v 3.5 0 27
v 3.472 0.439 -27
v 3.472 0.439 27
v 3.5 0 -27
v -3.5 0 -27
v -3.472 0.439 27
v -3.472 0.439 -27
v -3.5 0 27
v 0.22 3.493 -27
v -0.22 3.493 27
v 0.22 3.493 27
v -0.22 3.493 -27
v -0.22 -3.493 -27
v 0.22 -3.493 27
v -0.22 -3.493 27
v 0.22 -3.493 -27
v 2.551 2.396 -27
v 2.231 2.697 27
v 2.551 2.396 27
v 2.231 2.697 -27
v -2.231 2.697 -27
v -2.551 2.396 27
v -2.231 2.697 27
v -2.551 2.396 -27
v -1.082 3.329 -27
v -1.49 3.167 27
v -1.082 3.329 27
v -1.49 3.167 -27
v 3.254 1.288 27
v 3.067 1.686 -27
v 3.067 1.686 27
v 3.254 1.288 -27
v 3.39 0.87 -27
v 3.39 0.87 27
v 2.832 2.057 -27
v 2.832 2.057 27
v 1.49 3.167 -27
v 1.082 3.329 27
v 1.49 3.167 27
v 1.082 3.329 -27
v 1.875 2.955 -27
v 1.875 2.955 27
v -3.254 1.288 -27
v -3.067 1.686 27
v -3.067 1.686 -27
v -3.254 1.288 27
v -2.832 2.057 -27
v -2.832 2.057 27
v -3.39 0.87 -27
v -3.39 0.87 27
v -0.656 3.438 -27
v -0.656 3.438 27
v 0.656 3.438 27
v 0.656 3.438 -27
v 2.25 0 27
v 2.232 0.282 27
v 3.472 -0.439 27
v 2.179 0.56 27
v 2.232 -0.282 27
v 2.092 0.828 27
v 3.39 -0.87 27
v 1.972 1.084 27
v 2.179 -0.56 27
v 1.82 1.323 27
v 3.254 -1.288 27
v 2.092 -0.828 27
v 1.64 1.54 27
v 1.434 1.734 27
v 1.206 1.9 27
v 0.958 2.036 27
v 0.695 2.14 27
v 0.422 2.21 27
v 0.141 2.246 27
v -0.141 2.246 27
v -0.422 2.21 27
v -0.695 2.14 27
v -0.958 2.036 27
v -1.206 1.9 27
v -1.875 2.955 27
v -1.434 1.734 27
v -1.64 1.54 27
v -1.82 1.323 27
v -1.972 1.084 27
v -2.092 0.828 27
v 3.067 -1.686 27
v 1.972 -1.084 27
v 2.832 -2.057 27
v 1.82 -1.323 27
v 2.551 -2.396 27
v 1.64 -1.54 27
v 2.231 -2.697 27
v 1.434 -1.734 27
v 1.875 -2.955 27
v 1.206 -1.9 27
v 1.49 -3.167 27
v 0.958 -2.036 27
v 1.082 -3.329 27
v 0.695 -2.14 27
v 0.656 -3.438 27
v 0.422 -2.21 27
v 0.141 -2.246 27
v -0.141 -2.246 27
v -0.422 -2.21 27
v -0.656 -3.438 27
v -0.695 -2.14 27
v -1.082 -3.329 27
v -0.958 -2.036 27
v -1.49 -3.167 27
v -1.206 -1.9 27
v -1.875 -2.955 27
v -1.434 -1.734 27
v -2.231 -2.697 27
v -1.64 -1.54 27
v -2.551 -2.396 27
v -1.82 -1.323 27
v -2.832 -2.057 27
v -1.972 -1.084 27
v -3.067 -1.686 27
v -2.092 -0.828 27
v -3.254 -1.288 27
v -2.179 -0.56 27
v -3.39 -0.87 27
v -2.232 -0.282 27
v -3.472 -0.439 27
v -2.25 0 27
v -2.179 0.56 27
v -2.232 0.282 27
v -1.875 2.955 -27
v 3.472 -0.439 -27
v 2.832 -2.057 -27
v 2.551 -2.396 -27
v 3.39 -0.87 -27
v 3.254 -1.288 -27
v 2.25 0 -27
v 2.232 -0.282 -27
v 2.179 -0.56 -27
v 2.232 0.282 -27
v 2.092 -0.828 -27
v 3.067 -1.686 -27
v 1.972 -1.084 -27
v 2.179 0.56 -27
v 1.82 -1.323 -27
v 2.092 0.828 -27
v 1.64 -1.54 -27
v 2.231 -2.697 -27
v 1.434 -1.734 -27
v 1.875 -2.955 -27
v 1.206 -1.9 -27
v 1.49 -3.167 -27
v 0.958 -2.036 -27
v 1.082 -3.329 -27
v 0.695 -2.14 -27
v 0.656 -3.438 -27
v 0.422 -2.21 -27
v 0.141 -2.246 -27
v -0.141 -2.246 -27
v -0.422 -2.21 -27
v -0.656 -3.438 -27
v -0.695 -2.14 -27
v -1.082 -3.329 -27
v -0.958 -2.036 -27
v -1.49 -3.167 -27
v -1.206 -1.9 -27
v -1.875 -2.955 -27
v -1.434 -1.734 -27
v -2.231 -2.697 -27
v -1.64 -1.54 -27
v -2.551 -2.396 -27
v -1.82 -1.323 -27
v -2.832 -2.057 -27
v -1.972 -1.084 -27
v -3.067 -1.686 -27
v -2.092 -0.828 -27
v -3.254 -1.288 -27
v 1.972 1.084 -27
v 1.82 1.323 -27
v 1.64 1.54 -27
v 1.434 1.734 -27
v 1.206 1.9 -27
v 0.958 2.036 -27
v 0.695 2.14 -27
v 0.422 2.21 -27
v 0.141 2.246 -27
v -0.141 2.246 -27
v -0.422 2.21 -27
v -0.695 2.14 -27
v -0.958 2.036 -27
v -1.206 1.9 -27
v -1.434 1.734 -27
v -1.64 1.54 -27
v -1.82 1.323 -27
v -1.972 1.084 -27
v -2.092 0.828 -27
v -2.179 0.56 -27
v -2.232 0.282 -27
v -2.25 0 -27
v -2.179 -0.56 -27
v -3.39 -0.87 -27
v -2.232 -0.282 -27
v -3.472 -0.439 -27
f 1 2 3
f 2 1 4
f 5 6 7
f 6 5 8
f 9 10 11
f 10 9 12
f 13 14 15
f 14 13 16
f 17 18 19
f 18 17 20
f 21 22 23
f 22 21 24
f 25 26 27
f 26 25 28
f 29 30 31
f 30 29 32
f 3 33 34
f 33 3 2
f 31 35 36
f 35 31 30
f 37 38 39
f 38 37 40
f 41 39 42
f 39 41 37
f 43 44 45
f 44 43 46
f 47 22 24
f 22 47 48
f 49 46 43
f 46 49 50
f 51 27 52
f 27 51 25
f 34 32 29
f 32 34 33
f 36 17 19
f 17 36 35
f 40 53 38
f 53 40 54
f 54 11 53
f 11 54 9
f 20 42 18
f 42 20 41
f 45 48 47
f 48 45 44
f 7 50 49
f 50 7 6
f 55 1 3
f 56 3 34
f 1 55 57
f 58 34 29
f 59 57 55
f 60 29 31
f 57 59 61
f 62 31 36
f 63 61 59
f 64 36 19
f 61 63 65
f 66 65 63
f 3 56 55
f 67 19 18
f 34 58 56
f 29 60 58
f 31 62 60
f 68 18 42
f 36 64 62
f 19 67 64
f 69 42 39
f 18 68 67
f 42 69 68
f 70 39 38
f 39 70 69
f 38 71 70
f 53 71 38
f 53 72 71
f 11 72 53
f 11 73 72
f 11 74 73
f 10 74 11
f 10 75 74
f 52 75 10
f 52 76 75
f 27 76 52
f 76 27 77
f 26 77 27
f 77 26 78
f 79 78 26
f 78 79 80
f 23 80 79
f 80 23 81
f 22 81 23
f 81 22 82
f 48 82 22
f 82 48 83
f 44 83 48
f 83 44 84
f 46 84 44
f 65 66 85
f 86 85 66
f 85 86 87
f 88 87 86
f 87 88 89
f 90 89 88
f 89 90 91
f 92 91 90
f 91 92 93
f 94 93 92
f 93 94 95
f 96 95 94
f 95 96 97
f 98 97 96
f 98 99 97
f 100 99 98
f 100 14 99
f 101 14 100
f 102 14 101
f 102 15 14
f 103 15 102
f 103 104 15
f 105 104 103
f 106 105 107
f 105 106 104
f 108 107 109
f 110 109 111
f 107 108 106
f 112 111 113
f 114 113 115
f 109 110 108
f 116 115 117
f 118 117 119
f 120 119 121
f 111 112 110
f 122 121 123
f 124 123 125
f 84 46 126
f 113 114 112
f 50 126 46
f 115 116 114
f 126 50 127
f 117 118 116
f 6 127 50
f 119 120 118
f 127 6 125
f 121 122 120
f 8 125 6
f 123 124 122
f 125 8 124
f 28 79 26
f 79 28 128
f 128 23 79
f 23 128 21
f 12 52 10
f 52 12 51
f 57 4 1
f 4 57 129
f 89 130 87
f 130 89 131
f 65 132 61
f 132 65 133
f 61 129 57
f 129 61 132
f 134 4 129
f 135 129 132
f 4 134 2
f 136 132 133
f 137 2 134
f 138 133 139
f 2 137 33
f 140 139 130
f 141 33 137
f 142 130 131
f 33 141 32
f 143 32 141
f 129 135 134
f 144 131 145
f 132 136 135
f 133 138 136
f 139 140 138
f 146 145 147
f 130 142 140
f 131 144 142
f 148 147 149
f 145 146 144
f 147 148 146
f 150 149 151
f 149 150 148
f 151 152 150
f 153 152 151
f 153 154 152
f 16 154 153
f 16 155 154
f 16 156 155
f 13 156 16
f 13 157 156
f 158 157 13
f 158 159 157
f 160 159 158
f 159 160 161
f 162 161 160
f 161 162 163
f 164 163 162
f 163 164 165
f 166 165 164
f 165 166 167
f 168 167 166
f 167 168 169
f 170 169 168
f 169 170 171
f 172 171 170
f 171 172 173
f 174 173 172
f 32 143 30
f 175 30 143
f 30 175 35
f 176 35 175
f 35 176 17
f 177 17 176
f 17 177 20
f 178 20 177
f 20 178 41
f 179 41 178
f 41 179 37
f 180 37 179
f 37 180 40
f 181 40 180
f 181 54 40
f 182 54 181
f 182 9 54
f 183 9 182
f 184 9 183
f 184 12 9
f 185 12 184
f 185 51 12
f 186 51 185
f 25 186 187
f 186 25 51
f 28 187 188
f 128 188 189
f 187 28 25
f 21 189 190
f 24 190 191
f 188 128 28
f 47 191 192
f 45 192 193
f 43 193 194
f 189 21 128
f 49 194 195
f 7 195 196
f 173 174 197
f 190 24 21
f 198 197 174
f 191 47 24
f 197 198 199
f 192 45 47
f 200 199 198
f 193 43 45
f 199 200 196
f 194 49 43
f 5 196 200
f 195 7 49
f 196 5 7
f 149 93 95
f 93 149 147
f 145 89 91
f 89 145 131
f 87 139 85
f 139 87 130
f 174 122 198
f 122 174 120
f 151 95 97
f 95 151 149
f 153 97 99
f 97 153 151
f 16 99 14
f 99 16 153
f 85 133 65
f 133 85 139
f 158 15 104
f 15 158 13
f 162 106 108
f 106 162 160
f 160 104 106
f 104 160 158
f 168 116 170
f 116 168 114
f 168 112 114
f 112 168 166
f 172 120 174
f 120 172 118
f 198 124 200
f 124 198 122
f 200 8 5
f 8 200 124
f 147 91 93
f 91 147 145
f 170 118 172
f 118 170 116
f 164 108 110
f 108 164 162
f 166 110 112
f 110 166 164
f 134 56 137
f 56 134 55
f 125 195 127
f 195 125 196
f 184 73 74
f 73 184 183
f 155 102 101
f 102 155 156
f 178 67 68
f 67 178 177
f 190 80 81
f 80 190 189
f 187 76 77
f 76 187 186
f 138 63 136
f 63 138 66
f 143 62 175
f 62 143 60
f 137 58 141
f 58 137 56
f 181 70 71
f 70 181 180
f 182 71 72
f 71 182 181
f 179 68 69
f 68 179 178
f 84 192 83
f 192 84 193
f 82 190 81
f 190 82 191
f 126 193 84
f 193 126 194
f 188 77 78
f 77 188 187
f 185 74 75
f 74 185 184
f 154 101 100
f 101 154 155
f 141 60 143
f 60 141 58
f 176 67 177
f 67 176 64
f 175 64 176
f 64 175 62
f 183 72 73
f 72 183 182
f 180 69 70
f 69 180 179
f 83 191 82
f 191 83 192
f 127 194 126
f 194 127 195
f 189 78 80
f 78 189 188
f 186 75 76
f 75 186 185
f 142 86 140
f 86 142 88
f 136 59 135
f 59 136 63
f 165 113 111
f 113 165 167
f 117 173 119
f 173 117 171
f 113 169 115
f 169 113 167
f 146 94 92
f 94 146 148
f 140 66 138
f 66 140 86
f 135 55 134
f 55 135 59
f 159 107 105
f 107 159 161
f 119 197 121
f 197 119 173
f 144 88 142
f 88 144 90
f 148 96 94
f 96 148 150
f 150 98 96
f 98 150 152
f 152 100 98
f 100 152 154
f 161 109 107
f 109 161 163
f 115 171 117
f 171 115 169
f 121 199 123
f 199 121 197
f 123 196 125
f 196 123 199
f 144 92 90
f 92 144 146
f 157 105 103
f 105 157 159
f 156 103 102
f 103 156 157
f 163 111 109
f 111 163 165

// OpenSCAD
$fn = 50;


difference() {
	union() {
		translate(v = [0, 0, -27.0000000000]) {
			cylinder(h = 54, r = 3.5000000000);
		}
	}
	union() {
		translate(v = [0, 0, -100.0000000000]) {
			cylinder(h = 200, r = 2.2500000000);
		}
	}
}
